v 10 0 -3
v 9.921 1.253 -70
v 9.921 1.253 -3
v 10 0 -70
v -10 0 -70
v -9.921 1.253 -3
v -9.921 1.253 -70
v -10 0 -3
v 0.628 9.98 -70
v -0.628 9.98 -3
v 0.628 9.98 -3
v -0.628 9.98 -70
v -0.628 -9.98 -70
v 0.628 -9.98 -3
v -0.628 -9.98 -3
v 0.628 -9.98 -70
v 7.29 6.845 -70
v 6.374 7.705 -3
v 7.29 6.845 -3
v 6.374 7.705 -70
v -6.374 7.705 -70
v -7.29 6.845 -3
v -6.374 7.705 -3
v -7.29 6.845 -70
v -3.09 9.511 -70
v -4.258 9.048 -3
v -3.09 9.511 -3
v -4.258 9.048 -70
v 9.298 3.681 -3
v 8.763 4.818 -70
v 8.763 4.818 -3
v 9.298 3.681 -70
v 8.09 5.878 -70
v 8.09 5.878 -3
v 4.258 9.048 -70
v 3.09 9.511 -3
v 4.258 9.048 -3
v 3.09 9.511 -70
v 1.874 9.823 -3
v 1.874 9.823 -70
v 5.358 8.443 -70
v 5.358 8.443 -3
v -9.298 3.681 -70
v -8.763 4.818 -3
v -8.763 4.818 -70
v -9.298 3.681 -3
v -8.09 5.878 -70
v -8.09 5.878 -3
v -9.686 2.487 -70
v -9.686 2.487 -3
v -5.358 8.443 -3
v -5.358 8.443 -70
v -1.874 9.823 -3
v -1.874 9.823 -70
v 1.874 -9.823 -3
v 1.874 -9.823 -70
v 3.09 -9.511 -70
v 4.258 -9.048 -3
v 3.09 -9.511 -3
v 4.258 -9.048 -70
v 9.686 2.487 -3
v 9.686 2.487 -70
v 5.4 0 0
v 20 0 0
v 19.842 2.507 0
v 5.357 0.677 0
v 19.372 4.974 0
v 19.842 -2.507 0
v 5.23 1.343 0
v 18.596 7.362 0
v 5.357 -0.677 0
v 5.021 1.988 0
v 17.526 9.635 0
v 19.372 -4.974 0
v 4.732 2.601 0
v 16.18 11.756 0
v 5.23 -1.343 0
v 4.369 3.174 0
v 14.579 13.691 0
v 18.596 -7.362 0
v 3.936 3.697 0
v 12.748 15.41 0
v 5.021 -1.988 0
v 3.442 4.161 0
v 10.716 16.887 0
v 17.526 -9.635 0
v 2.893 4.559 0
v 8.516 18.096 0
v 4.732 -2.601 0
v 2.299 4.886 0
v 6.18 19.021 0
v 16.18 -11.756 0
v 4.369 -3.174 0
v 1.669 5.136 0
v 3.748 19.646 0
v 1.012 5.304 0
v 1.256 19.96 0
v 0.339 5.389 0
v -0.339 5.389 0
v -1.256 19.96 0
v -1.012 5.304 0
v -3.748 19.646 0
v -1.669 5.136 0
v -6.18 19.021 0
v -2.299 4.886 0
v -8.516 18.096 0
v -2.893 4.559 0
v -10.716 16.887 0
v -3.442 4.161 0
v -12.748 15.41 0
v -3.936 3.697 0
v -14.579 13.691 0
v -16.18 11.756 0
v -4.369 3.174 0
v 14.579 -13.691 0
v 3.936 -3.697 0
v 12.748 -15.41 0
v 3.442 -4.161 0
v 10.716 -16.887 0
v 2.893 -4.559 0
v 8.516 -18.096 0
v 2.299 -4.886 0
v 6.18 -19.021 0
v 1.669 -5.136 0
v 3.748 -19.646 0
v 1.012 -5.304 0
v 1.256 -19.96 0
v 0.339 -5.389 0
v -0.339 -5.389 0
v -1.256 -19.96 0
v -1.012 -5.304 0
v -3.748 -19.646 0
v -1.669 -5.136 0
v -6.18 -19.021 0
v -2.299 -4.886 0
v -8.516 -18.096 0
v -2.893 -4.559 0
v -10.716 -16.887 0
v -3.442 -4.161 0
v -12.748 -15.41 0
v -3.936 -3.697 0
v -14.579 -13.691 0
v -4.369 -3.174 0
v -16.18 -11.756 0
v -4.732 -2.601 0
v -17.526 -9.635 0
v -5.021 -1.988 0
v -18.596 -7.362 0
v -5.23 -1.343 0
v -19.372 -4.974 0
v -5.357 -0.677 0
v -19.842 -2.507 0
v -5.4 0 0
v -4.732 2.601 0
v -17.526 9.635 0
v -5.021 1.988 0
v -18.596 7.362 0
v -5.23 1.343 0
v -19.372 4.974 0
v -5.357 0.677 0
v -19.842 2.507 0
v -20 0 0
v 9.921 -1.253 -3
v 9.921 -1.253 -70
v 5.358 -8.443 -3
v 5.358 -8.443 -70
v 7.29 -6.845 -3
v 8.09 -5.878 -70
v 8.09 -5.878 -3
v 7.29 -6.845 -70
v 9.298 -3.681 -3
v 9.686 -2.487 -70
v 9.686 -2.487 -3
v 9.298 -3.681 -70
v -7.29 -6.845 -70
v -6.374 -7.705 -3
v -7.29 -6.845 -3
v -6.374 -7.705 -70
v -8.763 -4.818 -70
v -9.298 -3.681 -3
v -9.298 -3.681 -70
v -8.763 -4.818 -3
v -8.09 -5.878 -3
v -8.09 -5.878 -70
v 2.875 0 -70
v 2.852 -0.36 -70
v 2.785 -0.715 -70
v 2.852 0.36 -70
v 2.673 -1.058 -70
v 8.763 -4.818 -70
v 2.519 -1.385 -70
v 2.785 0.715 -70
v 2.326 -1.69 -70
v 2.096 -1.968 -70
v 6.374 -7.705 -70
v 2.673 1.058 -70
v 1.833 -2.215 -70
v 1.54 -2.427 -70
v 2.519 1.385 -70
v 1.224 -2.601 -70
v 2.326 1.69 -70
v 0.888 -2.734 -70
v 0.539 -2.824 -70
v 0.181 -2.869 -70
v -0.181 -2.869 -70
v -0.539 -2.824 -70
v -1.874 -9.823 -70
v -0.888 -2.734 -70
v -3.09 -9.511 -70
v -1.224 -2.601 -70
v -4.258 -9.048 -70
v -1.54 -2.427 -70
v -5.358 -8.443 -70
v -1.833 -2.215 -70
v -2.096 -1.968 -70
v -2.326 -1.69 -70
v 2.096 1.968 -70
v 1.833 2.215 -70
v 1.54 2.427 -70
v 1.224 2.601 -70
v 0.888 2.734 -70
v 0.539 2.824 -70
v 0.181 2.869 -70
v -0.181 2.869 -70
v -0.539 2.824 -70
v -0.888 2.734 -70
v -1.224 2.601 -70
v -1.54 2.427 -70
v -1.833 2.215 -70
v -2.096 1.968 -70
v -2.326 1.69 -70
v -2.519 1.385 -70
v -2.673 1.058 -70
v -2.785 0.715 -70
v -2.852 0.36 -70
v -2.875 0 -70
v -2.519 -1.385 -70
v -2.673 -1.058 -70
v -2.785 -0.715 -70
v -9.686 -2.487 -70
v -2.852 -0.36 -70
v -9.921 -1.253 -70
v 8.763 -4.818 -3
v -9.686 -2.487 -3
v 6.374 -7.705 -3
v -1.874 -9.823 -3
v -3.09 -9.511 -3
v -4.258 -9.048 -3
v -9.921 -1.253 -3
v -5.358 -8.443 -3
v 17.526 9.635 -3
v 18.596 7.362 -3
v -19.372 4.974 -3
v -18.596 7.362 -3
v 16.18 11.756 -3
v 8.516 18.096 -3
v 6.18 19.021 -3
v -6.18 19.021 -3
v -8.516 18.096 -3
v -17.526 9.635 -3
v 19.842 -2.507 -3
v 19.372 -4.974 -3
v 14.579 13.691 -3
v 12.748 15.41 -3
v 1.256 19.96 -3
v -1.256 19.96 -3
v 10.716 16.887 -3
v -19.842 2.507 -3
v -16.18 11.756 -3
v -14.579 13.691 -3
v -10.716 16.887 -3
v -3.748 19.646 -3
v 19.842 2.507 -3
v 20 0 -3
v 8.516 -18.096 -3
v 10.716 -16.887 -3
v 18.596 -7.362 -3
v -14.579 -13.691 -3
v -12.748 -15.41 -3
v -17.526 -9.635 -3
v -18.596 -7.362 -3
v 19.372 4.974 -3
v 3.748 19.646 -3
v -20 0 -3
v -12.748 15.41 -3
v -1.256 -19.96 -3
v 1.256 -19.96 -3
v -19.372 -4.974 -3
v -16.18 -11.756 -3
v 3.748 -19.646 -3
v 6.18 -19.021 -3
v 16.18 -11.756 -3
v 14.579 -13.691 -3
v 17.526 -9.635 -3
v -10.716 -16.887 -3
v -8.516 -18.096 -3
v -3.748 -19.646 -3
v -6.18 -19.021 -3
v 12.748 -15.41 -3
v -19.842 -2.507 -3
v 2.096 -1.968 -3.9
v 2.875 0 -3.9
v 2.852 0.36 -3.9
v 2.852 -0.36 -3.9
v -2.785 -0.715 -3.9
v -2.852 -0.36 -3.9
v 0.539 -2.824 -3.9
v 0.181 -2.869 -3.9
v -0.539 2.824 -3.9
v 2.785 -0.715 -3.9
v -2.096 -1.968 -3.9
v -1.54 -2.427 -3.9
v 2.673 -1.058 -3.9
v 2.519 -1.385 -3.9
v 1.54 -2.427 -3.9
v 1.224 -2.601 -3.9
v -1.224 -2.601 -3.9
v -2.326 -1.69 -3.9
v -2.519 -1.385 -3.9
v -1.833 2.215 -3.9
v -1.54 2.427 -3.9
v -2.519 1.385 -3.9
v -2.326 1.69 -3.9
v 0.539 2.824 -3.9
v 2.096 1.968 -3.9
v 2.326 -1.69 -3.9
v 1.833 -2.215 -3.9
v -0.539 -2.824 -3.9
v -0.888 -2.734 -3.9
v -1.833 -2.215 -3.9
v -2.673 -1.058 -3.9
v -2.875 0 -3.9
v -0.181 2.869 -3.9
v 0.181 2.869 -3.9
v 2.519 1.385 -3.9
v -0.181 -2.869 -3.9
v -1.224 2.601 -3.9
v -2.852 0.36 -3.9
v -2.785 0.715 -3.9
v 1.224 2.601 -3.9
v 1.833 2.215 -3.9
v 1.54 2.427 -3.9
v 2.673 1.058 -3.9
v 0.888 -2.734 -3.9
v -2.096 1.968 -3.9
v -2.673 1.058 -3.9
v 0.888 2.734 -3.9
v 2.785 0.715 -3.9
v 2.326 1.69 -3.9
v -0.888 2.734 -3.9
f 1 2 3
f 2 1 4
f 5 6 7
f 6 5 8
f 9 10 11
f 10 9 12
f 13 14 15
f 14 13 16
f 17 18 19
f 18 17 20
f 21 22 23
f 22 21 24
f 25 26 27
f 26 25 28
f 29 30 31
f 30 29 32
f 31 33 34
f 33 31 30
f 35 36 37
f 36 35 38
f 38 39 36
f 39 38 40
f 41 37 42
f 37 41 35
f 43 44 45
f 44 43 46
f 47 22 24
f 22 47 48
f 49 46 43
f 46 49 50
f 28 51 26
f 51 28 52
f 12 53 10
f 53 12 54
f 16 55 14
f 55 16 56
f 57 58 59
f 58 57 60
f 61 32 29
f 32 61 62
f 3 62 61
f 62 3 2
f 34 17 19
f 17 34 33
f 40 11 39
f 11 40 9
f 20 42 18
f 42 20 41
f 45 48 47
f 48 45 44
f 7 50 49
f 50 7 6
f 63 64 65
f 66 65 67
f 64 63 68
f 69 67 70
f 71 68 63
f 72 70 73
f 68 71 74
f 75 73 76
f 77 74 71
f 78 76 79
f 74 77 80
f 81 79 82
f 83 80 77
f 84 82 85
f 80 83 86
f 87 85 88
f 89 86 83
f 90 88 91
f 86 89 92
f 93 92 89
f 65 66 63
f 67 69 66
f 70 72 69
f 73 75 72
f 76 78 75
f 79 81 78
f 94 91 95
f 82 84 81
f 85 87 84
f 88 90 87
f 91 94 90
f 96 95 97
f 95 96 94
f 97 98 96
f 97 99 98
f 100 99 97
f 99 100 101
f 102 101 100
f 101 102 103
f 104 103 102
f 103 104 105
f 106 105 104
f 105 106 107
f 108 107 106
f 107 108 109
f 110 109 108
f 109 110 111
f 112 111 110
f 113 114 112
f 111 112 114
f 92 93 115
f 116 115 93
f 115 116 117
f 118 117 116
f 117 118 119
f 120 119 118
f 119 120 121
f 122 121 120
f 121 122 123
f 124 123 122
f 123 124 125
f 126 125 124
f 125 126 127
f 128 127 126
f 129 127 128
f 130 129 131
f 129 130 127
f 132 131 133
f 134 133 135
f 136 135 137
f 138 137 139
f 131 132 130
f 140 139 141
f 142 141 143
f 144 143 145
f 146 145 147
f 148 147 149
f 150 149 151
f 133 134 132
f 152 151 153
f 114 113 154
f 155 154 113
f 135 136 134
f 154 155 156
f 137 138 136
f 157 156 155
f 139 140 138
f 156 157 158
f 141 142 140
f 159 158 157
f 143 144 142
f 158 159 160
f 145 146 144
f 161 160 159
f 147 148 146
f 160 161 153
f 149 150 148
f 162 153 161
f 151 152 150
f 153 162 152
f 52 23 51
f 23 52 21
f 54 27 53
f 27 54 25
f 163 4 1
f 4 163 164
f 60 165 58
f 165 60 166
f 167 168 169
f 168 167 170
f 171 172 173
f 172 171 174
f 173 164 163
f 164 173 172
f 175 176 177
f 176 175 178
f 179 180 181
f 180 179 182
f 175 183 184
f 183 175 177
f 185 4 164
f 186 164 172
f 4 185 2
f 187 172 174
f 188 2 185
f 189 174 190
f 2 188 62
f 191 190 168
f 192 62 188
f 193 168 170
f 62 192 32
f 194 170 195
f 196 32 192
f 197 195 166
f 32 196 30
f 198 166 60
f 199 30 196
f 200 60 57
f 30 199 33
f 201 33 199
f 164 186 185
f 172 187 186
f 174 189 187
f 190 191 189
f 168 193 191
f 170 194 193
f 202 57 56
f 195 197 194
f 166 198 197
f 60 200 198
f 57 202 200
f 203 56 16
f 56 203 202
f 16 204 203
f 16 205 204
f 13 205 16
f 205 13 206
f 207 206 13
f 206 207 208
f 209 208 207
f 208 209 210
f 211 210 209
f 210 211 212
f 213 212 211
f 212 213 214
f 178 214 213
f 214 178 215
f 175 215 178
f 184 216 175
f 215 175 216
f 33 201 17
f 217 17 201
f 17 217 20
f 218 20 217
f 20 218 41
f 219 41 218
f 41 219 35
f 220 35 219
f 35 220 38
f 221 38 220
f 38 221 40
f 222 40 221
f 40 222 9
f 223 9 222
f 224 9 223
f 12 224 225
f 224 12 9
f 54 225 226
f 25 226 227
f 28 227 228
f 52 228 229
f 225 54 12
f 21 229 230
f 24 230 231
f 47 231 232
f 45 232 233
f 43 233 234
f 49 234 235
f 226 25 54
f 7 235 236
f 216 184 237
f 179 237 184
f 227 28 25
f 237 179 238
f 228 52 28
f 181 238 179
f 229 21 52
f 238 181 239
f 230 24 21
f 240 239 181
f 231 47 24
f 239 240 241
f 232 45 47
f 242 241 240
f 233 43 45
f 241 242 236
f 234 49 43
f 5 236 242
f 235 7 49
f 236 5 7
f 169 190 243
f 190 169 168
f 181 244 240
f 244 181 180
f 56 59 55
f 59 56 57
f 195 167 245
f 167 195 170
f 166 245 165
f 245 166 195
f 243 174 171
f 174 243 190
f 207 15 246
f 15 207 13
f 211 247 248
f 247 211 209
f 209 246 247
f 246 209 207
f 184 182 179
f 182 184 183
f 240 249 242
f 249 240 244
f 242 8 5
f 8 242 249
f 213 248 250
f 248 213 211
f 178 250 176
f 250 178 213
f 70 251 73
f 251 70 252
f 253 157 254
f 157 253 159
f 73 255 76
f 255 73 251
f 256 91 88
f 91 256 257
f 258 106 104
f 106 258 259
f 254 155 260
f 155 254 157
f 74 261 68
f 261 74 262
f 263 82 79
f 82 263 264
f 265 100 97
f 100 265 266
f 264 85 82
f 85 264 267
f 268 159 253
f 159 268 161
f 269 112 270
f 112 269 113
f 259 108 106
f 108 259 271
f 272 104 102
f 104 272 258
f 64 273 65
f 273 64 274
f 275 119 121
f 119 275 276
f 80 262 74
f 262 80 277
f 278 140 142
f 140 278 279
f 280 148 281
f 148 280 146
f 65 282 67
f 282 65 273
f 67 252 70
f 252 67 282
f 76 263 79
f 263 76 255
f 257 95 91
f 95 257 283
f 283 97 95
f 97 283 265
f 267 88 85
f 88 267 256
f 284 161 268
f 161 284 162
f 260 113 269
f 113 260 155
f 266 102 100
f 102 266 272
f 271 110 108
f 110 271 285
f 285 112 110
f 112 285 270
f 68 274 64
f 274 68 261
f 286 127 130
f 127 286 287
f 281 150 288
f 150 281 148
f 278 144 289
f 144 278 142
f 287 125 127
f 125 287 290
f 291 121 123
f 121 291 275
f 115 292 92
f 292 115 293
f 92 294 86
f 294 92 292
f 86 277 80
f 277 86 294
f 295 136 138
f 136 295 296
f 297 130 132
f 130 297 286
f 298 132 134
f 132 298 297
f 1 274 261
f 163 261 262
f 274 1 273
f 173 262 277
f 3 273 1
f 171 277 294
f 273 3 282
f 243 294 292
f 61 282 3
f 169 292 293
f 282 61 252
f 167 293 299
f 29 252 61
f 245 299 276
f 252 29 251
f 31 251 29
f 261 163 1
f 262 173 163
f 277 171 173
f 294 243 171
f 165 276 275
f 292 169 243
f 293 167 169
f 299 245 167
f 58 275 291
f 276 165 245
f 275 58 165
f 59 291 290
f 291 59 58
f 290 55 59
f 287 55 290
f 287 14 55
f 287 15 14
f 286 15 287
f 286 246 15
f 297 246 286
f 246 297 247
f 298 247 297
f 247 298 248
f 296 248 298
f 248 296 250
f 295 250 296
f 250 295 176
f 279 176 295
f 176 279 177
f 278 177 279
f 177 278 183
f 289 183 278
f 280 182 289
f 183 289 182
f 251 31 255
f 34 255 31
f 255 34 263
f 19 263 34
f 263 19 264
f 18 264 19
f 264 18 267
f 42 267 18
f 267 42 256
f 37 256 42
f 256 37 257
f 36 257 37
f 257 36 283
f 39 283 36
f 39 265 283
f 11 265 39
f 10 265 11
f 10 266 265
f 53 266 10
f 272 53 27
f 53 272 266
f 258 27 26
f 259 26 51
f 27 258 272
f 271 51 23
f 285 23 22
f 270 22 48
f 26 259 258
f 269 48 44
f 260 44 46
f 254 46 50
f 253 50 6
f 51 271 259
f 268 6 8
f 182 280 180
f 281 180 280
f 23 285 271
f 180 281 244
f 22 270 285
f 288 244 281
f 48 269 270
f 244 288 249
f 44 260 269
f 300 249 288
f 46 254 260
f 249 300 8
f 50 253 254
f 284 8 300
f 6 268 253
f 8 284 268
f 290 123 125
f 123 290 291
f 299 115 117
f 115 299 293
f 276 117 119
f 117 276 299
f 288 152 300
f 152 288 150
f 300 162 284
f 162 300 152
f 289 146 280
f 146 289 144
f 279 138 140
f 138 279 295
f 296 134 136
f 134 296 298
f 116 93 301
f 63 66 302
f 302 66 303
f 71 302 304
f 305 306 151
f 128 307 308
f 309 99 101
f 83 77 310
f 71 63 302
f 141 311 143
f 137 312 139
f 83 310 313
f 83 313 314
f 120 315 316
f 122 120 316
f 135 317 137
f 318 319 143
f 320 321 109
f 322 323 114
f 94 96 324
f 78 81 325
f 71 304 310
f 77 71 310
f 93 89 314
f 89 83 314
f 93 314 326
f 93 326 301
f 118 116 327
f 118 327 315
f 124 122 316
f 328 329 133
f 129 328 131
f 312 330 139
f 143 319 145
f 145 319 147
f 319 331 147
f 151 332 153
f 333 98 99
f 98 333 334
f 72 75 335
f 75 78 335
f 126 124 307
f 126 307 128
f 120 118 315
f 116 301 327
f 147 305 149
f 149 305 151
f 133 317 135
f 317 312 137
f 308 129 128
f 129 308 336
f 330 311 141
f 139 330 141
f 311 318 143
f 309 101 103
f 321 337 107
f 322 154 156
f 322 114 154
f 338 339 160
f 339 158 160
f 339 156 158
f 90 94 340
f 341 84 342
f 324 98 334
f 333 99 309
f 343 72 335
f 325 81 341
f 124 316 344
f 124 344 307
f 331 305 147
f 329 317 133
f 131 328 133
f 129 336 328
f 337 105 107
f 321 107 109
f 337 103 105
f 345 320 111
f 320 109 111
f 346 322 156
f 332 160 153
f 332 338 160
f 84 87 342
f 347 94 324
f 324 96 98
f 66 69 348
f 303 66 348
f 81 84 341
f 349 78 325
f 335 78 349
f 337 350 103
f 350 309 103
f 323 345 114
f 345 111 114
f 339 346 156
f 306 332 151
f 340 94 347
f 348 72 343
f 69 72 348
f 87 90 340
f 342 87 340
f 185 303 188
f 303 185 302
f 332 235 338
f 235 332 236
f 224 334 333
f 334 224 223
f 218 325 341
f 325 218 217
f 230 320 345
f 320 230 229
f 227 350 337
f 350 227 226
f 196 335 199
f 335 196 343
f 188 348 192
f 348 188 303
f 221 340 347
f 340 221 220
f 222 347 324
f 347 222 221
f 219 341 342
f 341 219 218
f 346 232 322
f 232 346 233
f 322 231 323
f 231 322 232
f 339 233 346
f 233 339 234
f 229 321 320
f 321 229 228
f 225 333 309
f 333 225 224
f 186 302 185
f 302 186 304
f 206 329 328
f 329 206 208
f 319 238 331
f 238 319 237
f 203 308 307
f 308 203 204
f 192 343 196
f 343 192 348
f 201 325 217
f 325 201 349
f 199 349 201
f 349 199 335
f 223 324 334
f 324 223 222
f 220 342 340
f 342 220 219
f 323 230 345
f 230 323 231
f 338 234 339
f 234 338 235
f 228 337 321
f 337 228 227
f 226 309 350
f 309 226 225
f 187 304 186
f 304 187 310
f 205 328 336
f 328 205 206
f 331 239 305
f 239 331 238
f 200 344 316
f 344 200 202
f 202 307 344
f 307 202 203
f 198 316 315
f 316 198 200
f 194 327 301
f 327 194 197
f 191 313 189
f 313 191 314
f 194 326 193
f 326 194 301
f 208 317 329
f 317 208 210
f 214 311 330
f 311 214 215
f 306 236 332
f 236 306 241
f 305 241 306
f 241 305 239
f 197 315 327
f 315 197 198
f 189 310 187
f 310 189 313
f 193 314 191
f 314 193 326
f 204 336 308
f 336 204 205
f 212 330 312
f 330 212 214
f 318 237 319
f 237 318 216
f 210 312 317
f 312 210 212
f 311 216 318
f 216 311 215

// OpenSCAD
$fn = 50;


difference() {
	union() {
		translate(v = [0, 0, -70.0000000000]) {
			cylinder(h = 70, r = 10.0000000000);
		}
		translate(v = [0, 0, -3.0000000000]) {
			cylinder(h = 3, r = 20.0000000000);
		}
	}
	union() {
		translate(v = [0, 0, 0]) {
			rotate(a = [0, 0, 0]) {
				difference() {
					union() {
						#translate(v = [0, 0, -70.0000000000]) {
							cylinder(h = 70, r = 2.6000000000);
						}
						#translate(v = [0, 0, -3.9000000000]) {
							cylinder(h = 3.9000000000, r1 = 2.8750000000, r2 = 5.4000000000);
						}
						#translate(v = [0, 0, -70.0000000000]) {
							cylinder(h = 70, r = 2.8750000000);
						}
						#translate(v = [0, 0, -70.0000000000]) {
							cylinder(h = 70, r = 2.6000000000);
						}
					}
					union();
				}
			}
		}
	}
}
